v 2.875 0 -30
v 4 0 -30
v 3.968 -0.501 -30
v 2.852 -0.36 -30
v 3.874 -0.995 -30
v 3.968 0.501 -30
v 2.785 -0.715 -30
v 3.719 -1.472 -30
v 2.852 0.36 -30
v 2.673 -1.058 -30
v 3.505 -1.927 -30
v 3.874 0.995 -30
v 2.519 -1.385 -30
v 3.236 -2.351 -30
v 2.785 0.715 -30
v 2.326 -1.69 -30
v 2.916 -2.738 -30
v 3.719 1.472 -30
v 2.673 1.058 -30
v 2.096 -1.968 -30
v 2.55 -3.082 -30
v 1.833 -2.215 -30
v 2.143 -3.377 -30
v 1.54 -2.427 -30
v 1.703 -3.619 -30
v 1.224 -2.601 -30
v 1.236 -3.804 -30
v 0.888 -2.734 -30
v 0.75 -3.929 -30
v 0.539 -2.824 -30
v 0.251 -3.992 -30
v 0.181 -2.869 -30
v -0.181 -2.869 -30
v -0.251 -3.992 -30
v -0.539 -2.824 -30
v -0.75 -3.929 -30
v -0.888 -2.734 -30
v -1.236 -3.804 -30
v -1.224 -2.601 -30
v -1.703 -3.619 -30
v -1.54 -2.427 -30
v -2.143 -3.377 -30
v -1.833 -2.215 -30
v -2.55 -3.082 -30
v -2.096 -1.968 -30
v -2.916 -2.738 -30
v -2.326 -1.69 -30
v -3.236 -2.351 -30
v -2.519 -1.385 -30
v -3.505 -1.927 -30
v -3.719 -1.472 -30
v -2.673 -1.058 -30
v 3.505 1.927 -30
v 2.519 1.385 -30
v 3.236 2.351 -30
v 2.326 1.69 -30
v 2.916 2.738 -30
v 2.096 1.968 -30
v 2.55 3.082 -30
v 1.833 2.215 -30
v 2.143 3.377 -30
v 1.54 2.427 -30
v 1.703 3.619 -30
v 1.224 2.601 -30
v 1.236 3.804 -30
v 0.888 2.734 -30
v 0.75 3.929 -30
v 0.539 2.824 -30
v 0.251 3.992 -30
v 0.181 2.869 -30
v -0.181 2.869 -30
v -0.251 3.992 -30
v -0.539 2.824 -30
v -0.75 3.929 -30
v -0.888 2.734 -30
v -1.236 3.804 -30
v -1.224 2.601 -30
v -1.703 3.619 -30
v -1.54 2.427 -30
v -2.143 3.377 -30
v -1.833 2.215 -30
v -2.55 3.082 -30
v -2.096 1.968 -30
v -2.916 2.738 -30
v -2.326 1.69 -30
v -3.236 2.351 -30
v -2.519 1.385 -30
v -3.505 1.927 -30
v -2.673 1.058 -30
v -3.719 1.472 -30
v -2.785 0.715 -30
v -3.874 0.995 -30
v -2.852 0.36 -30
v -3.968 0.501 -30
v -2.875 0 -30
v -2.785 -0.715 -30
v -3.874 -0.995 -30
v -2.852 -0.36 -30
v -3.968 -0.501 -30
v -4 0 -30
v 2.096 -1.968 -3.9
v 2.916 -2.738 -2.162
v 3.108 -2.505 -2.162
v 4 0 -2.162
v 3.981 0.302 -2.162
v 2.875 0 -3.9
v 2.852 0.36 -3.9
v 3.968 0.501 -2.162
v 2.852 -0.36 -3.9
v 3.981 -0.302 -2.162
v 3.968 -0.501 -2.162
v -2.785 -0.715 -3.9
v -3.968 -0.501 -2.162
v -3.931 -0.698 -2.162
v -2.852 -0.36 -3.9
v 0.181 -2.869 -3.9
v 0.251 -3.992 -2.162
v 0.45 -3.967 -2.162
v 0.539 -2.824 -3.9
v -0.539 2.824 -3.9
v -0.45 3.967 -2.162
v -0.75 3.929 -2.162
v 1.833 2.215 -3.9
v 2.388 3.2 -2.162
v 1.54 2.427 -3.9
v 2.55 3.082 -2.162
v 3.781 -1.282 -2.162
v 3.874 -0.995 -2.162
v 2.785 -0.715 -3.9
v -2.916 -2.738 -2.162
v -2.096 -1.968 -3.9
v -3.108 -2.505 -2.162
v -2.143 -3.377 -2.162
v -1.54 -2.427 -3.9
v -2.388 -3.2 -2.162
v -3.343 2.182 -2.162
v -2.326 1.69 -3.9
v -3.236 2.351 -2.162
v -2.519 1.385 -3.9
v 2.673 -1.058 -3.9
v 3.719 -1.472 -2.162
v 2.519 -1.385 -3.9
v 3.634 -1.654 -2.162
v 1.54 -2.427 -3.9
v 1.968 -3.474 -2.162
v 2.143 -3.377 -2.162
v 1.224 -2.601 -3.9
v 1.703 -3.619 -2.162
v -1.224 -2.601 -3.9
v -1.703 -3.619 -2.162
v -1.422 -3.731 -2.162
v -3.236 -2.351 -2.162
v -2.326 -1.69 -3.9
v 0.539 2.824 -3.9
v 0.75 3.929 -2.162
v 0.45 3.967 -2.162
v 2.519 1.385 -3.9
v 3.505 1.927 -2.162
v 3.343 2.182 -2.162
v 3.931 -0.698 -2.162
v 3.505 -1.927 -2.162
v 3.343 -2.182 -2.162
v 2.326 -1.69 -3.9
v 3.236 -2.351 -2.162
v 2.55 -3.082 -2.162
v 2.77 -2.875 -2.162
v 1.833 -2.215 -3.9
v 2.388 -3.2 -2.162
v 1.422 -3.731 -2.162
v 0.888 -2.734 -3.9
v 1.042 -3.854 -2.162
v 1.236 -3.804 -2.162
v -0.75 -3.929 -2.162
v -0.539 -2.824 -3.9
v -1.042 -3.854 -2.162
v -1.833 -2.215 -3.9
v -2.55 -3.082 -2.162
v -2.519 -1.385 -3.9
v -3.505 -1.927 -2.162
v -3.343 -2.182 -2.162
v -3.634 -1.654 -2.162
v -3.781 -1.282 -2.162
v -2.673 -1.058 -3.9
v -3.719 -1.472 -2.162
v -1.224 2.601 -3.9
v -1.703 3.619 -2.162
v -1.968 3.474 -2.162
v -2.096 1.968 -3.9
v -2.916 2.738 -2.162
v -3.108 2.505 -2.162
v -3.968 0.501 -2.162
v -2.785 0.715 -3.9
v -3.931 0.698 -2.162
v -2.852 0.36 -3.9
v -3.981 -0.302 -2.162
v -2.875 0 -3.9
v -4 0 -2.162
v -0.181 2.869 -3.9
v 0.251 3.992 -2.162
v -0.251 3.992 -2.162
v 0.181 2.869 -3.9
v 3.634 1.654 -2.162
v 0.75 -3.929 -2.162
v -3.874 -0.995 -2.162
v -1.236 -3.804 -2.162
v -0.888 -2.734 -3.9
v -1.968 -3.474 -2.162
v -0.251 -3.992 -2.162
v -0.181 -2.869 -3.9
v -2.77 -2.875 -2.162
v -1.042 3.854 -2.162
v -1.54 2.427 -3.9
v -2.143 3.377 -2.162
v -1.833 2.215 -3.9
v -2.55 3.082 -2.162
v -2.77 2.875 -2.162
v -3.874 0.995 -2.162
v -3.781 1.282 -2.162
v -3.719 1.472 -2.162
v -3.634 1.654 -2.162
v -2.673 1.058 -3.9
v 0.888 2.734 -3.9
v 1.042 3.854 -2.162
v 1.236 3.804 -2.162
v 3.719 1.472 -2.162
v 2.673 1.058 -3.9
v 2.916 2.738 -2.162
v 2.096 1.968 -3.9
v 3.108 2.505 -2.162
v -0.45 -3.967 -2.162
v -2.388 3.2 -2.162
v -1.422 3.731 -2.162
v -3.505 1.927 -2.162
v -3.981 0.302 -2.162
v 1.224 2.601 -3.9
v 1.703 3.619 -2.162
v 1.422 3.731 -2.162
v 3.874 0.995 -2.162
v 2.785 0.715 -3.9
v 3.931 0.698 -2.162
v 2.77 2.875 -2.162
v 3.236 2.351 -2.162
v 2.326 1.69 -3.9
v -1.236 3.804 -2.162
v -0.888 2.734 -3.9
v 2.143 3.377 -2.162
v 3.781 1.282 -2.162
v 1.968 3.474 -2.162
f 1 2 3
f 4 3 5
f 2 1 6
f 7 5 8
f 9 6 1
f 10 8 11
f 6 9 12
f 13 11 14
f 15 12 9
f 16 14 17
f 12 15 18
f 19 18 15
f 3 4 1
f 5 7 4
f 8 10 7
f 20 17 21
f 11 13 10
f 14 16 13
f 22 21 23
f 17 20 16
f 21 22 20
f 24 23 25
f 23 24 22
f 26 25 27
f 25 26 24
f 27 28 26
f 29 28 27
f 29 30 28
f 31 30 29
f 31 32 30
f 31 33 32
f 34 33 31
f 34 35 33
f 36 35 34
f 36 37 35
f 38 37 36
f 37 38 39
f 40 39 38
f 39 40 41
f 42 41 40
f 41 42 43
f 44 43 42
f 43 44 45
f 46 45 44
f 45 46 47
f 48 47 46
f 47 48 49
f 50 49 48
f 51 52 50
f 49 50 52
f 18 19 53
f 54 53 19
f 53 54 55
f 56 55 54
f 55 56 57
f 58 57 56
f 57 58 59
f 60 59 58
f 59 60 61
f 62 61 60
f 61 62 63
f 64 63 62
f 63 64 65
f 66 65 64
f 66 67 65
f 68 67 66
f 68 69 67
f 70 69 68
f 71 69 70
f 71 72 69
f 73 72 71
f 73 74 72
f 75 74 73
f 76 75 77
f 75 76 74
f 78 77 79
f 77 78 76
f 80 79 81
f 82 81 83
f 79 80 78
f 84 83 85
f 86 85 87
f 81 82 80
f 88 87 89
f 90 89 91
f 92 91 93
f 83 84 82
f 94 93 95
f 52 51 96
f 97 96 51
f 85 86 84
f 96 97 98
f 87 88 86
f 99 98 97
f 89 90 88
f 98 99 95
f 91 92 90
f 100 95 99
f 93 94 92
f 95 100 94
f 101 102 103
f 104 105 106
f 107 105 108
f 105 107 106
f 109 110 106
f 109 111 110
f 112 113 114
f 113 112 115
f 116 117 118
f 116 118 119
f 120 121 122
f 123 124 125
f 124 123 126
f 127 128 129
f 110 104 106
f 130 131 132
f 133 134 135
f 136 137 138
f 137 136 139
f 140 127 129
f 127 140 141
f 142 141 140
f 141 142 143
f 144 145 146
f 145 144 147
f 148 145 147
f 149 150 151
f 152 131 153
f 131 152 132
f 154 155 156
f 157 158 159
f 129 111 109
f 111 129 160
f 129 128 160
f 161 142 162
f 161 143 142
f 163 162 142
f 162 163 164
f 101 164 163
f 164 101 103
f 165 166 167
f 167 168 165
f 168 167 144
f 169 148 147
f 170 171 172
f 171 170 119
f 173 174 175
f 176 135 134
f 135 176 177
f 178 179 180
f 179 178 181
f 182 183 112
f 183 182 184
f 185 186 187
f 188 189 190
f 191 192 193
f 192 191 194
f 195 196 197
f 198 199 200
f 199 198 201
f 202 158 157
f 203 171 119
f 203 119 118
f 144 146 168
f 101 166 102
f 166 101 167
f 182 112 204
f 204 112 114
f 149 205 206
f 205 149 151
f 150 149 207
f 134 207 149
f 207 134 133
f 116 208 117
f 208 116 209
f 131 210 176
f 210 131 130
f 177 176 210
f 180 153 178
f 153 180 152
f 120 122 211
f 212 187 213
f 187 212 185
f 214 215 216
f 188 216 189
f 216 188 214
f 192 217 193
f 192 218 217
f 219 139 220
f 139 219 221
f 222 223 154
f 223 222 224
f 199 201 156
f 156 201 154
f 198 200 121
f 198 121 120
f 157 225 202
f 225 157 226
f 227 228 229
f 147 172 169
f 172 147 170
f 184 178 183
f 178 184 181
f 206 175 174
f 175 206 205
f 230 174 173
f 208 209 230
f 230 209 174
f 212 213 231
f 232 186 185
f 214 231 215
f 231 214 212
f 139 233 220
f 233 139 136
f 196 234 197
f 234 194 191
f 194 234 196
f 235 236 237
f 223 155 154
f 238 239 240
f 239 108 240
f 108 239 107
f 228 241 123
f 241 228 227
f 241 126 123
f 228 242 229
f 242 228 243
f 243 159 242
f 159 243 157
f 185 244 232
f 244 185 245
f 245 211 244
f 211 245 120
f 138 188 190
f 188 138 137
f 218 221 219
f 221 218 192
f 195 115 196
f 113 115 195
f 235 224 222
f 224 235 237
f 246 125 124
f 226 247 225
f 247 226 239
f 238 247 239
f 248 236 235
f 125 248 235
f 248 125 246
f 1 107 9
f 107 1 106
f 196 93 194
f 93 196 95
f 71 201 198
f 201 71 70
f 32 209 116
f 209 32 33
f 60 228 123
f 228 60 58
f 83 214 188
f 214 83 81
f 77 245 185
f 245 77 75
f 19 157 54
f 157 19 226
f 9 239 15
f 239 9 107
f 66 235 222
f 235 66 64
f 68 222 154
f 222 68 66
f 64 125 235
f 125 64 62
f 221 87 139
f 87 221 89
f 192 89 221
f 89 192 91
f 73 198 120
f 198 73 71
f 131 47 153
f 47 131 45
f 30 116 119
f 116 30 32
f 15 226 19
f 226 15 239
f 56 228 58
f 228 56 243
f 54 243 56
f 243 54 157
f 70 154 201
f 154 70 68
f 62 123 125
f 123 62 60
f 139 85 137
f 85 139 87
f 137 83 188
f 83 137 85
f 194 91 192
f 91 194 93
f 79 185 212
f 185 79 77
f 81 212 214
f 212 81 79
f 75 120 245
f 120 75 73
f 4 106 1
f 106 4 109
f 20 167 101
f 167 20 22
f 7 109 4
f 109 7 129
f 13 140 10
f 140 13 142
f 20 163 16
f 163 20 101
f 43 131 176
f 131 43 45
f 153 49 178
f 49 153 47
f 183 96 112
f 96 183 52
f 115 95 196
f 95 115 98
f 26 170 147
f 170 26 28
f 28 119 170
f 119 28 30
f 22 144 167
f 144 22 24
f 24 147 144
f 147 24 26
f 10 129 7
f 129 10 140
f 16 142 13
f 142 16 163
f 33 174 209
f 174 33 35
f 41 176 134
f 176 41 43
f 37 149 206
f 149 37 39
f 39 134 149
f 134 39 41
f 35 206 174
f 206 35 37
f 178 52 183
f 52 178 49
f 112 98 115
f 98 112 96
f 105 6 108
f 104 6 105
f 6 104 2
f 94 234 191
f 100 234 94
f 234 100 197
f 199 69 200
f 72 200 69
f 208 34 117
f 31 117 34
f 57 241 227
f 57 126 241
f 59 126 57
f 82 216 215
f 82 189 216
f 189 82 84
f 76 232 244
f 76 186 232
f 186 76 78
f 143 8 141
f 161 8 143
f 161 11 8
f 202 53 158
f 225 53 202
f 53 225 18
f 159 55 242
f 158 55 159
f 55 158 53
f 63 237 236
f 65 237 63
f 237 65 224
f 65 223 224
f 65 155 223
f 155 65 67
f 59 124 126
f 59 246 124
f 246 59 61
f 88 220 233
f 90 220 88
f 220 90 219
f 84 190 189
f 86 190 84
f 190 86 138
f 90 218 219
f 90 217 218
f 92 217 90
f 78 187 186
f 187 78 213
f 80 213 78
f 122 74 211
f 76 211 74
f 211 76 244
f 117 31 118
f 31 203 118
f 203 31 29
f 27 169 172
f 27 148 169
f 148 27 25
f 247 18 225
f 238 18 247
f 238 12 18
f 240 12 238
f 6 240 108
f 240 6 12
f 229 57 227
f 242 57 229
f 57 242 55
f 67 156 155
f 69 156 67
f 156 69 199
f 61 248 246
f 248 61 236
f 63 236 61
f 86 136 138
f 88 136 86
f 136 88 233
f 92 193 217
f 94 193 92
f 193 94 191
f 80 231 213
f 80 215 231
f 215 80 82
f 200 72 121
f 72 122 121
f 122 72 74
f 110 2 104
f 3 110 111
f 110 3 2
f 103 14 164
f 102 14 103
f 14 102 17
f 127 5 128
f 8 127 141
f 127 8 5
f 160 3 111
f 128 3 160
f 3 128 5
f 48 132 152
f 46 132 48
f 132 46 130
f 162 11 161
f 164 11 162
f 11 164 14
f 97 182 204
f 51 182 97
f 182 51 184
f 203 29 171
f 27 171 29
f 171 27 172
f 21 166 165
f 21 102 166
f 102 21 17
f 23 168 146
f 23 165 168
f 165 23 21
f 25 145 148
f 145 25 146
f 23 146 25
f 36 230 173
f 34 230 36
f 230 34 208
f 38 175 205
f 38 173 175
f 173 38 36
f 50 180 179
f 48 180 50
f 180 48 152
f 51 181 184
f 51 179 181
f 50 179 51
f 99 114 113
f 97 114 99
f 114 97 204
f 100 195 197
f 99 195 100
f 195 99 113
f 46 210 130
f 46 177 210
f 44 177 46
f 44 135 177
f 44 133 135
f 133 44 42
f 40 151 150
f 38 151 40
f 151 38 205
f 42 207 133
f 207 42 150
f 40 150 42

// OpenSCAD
$fn = 50;


difference() {
	union() {
		translate(v = [0, 0, -30.0000000000]) {
			cylinder(h = 30, r = 4.0000000000);
		}
		cylinder(h = 0, r = 7.0000000000);
	}
	union() {
		translate(v = [0, 0, 0]) {
			rotate(a = [0, 0, 0]) {
				difference() {
					union() {
						#translate(v = [0, 0, -30.0000000000]) {
							cylinder(h = 30, r = 2.6000000000);
						}
						#translate(v = [0, 0, -3.9000000000]) {
							cylinder(h = 3.9000000000, r = 4.0000000000, r1 = 2.8750000000, r2 = 5.4000000000);
						}
						#translate(v = [0, 0, -30.0000000000]) {
							cylinder(h = 30, r = 2.8750000000);
						}
						#translate(v = [0, 0, -30.0000000000]) {
							cylinder(h = 30, r = 2.6000000000);
						}
					}
					union();
				}
			}
		}
	}
}
